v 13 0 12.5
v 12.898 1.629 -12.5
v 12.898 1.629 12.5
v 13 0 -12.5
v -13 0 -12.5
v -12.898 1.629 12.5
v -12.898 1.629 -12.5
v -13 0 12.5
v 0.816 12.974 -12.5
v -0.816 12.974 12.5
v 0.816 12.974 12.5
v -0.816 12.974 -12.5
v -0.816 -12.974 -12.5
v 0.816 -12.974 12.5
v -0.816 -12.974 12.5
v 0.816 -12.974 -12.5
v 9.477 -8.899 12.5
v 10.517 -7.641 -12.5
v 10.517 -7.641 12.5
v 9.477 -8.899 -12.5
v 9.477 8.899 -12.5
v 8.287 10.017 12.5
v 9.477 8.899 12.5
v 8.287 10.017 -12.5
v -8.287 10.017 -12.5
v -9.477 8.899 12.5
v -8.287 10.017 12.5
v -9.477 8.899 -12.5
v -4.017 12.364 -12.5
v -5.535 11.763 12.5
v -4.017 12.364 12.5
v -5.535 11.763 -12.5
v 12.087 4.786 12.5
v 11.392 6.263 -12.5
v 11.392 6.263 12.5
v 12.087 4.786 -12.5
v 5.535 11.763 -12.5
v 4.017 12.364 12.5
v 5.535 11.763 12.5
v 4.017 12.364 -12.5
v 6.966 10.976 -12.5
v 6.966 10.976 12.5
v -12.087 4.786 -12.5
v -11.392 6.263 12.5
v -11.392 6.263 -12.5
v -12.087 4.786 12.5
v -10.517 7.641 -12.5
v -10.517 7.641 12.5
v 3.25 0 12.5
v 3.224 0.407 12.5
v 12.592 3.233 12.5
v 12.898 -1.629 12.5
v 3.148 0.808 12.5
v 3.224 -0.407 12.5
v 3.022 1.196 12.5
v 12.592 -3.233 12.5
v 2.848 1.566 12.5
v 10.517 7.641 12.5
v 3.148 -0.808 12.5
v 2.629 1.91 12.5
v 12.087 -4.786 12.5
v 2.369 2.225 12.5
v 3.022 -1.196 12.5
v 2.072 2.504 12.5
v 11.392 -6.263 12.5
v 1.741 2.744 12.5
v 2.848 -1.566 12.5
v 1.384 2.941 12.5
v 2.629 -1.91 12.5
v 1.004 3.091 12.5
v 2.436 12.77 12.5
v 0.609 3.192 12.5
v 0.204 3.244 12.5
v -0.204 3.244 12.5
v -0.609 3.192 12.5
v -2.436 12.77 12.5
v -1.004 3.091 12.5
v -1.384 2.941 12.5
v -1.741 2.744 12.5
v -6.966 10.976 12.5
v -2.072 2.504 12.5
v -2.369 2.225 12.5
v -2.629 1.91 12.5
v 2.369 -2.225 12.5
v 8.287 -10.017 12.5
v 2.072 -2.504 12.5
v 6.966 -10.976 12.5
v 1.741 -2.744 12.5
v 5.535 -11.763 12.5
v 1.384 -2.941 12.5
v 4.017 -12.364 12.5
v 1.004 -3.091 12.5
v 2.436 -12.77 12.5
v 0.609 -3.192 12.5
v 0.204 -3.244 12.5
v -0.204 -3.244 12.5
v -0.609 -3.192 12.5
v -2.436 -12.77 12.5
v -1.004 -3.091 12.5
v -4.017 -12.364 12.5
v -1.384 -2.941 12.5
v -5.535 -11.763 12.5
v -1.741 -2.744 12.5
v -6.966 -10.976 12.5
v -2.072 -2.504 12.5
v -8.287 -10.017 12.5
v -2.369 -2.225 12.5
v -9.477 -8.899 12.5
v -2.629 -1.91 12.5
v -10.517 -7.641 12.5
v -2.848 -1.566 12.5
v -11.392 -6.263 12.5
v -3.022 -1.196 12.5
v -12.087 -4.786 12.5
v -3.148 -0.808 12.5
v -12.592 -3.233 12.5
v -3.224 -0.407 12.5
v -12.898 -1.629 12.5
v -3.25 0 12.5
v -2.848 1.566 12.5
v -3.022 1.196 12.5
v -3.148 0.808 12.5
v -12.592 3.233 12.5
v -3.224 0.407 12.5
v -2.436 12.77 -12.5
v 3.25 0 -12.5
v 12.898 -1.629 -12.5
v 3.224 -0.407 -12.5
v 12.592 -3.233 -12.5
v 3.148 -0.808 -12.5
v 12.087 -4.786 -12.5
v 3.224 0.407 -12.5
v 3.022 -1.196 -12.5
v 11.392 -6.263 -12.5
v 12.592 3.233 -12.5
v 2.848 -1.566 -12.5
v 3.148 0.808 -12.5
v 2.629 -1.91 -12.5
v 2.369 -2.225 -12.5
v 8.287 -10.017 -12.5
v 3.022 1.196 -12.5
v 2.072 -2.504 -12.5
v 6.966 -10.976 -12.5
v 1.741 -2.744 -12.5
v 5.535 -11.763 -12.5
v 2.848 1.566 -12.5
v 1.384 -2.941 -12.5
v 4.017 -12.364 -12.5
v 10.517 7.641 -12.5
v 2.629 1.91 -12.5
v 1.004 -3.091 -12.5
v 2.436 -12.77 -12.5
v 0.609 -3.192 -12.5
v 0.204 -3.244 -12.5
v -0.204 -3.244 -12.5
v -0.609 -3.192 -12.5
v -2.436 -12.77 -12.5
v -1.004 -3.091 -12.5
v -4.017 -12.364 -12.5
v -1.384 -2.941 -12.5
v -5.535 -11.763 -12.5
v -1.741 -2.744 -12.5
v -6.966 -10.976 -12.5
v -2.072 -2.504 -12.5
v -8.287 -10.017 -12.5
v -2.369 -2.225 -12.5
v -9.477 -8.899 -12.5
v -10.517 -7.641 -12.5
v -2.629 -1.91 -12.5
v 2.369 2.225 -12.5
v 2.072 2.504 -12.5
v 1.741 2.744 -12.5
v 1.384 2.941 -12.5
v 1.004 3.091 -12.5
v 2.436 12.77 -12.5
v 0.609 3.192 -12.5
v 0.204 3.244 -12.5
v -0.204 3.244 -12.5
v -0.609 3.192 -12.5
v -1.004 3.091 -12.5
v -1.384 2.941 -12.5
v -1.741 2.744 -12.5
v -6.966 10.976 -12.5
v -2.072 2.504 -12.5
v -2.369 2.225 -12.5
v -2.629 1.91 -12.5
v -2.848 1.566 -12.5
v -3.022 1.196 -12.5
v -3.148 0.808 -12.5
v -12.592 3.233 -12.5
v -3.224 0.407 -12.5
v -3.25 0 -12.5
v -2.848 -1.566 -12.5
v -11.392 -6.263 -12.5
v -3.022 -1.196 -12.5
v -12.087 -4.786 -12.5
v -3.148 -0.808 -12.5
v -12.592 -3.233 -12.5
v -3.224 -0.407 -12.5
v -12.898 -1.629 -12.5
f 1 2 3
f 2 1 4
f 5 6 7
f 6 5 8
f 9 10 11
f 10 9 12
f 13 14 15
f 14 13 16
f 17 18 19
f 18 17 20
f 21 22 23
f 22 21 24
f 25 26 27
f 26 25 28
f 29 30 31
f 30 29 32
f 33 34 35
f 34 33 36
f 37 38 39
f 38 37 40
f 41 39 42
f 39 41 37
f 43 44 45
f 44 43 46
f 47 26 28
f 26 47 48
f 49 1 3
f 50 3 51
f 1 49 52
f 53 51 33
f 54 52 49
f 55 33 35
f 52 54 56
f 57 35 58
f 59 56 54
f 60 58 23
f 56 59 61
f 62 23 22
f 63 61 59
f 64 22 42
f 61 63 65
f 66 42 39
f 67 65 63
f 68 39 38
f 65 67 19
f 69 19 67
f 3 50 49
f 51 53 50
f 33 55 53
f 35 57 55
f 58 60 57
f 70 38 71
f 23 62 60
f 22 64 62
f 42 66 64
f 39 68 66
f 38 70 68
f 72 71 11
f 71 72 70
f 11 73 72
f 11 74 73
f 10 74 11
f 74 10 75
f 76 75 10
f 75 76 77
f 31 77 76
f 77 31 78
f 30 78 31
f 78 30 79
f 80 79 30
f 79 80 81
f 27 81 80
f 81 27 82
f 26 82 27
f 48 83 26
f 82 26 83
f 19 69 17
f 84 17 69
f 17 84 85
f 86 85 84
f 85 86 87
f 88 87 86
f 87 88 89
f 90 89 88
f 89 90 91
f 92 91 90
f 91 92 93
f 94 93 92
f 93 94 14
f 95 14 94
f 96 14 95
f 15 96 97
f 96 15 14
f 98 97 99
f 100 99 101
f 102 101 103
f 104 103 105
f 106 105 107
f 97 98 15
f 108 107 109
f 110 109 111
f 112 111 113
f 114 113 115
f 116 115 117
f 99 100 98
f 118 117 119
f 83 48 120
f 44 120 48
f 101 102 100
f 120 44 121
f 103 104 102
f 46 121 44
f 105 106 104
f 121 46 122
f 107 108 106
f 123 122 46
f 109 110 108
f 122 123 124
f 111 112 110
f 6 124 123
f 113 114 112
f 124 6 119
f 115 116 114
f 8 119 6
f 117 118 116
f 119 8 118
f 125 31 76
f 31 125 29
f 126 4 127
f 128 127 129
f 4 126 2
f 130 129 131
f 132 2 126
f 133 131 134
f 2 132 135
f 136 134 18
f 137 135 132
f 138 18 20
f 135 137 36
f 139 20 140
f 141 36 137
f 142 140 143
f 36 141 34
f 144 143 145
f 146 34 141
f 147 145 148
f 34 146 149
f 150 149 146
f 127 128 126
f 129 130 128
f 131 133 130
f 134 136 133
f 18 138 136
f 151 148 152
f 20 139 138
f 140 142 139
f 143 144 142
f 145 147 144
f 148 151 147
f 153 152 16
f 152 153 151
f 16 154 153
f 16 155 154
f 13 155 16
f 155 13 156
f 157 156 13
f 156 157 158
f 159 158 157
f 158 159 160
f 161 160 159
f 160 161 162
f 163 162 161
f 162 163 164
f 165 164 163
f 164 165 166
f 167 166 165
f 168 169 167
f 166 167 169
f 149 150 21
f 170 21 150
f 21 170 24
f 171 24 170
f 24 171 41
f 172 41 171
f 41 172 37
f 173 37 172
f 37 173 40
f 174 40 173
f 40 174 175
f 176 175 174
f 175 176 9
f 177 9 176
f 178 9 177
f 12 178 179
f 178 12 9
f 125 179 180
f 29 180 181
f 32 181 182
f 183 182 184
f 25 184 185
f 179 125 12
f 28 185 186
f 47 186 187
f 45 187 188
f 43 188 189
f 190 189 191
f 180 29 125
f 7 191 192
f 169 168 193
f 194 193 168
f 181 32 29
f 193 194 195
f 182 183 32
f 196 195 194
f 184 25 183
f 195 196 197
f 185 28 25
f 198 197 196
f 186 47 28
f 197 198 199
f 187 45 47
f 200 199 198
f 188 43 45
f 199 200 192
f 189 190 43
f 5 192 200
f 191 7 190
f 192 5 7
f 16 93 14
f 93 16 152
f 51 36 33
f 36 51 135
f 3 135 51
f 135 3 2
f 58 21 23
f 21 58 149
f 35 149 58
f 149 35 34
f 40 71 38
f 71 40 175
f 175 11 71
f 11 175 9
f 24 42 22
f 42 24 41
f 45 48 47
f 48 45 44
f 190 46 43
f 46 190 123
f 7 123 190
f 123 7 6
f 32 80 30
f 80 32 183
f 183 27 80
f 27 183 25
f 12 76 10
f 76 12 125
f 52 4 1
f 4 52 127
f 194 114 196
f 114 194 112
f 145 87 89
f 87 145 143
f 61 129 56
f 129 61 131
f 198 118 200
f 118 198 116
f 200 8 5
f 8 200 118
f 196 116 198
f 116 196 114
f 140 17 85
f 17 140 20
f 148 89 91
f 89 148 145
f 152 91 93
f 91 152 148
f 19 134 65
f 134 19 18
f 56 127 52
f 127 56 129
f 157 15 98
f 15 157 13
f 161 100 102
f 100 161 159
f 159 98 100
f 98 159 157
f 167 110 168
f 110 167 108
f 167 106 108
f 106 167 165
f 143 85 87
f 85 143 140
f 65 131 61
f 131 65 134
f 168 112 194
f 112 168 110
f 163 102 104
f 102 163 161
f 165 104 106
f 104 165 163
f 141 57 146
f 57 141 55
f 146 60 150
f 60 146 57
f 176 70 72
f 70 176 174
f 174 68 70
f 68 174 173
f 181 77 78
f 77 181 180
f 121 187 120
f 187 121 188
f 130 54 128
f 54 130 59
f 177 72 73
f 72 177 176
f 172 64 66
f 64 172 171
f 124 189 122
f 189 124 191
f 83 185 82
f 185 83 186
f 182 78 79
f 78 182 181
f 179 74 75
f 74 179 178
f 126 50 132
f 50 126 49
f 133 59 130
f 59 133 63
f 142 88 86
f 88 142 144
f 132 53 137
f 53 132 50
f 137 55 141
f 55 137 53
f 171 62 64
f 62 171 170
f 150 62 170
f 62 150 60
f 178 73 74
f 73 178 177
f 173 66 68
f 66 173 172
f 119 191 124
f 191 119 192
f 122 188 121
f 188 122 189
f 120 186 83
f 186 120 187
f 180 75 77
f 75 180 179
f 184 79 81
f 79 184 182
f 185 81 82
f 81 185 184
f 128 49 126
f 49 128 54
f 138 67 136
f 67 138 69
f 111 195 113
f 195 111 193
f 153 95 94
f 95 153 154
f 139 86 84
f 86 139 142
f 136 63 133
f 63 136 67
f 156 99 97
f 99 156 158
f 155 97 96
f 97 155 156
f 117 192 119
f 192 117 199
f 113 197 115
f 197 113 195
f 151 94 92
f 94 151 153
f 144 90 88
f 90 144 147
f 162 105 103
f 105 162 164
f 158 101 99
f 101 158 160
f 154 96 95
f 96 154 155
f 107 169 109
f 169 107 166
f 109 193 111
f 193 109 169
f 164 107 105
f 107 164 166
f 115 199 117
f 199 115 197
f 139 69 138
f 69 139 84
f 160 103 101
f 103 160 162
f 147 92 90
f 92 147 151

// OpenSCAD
$fn = 50;


difference() {
	union() {
		translate(v = [0, 0, -12.5000000000]) {
			cylinder(h = 25, r = 13.0000000000);
		}
	}
	union() {
		translate(v = [0, 0, -100.0000000000]) {
			cylinder(h = 200, r = 3.2500000000);
		}
	}
}
